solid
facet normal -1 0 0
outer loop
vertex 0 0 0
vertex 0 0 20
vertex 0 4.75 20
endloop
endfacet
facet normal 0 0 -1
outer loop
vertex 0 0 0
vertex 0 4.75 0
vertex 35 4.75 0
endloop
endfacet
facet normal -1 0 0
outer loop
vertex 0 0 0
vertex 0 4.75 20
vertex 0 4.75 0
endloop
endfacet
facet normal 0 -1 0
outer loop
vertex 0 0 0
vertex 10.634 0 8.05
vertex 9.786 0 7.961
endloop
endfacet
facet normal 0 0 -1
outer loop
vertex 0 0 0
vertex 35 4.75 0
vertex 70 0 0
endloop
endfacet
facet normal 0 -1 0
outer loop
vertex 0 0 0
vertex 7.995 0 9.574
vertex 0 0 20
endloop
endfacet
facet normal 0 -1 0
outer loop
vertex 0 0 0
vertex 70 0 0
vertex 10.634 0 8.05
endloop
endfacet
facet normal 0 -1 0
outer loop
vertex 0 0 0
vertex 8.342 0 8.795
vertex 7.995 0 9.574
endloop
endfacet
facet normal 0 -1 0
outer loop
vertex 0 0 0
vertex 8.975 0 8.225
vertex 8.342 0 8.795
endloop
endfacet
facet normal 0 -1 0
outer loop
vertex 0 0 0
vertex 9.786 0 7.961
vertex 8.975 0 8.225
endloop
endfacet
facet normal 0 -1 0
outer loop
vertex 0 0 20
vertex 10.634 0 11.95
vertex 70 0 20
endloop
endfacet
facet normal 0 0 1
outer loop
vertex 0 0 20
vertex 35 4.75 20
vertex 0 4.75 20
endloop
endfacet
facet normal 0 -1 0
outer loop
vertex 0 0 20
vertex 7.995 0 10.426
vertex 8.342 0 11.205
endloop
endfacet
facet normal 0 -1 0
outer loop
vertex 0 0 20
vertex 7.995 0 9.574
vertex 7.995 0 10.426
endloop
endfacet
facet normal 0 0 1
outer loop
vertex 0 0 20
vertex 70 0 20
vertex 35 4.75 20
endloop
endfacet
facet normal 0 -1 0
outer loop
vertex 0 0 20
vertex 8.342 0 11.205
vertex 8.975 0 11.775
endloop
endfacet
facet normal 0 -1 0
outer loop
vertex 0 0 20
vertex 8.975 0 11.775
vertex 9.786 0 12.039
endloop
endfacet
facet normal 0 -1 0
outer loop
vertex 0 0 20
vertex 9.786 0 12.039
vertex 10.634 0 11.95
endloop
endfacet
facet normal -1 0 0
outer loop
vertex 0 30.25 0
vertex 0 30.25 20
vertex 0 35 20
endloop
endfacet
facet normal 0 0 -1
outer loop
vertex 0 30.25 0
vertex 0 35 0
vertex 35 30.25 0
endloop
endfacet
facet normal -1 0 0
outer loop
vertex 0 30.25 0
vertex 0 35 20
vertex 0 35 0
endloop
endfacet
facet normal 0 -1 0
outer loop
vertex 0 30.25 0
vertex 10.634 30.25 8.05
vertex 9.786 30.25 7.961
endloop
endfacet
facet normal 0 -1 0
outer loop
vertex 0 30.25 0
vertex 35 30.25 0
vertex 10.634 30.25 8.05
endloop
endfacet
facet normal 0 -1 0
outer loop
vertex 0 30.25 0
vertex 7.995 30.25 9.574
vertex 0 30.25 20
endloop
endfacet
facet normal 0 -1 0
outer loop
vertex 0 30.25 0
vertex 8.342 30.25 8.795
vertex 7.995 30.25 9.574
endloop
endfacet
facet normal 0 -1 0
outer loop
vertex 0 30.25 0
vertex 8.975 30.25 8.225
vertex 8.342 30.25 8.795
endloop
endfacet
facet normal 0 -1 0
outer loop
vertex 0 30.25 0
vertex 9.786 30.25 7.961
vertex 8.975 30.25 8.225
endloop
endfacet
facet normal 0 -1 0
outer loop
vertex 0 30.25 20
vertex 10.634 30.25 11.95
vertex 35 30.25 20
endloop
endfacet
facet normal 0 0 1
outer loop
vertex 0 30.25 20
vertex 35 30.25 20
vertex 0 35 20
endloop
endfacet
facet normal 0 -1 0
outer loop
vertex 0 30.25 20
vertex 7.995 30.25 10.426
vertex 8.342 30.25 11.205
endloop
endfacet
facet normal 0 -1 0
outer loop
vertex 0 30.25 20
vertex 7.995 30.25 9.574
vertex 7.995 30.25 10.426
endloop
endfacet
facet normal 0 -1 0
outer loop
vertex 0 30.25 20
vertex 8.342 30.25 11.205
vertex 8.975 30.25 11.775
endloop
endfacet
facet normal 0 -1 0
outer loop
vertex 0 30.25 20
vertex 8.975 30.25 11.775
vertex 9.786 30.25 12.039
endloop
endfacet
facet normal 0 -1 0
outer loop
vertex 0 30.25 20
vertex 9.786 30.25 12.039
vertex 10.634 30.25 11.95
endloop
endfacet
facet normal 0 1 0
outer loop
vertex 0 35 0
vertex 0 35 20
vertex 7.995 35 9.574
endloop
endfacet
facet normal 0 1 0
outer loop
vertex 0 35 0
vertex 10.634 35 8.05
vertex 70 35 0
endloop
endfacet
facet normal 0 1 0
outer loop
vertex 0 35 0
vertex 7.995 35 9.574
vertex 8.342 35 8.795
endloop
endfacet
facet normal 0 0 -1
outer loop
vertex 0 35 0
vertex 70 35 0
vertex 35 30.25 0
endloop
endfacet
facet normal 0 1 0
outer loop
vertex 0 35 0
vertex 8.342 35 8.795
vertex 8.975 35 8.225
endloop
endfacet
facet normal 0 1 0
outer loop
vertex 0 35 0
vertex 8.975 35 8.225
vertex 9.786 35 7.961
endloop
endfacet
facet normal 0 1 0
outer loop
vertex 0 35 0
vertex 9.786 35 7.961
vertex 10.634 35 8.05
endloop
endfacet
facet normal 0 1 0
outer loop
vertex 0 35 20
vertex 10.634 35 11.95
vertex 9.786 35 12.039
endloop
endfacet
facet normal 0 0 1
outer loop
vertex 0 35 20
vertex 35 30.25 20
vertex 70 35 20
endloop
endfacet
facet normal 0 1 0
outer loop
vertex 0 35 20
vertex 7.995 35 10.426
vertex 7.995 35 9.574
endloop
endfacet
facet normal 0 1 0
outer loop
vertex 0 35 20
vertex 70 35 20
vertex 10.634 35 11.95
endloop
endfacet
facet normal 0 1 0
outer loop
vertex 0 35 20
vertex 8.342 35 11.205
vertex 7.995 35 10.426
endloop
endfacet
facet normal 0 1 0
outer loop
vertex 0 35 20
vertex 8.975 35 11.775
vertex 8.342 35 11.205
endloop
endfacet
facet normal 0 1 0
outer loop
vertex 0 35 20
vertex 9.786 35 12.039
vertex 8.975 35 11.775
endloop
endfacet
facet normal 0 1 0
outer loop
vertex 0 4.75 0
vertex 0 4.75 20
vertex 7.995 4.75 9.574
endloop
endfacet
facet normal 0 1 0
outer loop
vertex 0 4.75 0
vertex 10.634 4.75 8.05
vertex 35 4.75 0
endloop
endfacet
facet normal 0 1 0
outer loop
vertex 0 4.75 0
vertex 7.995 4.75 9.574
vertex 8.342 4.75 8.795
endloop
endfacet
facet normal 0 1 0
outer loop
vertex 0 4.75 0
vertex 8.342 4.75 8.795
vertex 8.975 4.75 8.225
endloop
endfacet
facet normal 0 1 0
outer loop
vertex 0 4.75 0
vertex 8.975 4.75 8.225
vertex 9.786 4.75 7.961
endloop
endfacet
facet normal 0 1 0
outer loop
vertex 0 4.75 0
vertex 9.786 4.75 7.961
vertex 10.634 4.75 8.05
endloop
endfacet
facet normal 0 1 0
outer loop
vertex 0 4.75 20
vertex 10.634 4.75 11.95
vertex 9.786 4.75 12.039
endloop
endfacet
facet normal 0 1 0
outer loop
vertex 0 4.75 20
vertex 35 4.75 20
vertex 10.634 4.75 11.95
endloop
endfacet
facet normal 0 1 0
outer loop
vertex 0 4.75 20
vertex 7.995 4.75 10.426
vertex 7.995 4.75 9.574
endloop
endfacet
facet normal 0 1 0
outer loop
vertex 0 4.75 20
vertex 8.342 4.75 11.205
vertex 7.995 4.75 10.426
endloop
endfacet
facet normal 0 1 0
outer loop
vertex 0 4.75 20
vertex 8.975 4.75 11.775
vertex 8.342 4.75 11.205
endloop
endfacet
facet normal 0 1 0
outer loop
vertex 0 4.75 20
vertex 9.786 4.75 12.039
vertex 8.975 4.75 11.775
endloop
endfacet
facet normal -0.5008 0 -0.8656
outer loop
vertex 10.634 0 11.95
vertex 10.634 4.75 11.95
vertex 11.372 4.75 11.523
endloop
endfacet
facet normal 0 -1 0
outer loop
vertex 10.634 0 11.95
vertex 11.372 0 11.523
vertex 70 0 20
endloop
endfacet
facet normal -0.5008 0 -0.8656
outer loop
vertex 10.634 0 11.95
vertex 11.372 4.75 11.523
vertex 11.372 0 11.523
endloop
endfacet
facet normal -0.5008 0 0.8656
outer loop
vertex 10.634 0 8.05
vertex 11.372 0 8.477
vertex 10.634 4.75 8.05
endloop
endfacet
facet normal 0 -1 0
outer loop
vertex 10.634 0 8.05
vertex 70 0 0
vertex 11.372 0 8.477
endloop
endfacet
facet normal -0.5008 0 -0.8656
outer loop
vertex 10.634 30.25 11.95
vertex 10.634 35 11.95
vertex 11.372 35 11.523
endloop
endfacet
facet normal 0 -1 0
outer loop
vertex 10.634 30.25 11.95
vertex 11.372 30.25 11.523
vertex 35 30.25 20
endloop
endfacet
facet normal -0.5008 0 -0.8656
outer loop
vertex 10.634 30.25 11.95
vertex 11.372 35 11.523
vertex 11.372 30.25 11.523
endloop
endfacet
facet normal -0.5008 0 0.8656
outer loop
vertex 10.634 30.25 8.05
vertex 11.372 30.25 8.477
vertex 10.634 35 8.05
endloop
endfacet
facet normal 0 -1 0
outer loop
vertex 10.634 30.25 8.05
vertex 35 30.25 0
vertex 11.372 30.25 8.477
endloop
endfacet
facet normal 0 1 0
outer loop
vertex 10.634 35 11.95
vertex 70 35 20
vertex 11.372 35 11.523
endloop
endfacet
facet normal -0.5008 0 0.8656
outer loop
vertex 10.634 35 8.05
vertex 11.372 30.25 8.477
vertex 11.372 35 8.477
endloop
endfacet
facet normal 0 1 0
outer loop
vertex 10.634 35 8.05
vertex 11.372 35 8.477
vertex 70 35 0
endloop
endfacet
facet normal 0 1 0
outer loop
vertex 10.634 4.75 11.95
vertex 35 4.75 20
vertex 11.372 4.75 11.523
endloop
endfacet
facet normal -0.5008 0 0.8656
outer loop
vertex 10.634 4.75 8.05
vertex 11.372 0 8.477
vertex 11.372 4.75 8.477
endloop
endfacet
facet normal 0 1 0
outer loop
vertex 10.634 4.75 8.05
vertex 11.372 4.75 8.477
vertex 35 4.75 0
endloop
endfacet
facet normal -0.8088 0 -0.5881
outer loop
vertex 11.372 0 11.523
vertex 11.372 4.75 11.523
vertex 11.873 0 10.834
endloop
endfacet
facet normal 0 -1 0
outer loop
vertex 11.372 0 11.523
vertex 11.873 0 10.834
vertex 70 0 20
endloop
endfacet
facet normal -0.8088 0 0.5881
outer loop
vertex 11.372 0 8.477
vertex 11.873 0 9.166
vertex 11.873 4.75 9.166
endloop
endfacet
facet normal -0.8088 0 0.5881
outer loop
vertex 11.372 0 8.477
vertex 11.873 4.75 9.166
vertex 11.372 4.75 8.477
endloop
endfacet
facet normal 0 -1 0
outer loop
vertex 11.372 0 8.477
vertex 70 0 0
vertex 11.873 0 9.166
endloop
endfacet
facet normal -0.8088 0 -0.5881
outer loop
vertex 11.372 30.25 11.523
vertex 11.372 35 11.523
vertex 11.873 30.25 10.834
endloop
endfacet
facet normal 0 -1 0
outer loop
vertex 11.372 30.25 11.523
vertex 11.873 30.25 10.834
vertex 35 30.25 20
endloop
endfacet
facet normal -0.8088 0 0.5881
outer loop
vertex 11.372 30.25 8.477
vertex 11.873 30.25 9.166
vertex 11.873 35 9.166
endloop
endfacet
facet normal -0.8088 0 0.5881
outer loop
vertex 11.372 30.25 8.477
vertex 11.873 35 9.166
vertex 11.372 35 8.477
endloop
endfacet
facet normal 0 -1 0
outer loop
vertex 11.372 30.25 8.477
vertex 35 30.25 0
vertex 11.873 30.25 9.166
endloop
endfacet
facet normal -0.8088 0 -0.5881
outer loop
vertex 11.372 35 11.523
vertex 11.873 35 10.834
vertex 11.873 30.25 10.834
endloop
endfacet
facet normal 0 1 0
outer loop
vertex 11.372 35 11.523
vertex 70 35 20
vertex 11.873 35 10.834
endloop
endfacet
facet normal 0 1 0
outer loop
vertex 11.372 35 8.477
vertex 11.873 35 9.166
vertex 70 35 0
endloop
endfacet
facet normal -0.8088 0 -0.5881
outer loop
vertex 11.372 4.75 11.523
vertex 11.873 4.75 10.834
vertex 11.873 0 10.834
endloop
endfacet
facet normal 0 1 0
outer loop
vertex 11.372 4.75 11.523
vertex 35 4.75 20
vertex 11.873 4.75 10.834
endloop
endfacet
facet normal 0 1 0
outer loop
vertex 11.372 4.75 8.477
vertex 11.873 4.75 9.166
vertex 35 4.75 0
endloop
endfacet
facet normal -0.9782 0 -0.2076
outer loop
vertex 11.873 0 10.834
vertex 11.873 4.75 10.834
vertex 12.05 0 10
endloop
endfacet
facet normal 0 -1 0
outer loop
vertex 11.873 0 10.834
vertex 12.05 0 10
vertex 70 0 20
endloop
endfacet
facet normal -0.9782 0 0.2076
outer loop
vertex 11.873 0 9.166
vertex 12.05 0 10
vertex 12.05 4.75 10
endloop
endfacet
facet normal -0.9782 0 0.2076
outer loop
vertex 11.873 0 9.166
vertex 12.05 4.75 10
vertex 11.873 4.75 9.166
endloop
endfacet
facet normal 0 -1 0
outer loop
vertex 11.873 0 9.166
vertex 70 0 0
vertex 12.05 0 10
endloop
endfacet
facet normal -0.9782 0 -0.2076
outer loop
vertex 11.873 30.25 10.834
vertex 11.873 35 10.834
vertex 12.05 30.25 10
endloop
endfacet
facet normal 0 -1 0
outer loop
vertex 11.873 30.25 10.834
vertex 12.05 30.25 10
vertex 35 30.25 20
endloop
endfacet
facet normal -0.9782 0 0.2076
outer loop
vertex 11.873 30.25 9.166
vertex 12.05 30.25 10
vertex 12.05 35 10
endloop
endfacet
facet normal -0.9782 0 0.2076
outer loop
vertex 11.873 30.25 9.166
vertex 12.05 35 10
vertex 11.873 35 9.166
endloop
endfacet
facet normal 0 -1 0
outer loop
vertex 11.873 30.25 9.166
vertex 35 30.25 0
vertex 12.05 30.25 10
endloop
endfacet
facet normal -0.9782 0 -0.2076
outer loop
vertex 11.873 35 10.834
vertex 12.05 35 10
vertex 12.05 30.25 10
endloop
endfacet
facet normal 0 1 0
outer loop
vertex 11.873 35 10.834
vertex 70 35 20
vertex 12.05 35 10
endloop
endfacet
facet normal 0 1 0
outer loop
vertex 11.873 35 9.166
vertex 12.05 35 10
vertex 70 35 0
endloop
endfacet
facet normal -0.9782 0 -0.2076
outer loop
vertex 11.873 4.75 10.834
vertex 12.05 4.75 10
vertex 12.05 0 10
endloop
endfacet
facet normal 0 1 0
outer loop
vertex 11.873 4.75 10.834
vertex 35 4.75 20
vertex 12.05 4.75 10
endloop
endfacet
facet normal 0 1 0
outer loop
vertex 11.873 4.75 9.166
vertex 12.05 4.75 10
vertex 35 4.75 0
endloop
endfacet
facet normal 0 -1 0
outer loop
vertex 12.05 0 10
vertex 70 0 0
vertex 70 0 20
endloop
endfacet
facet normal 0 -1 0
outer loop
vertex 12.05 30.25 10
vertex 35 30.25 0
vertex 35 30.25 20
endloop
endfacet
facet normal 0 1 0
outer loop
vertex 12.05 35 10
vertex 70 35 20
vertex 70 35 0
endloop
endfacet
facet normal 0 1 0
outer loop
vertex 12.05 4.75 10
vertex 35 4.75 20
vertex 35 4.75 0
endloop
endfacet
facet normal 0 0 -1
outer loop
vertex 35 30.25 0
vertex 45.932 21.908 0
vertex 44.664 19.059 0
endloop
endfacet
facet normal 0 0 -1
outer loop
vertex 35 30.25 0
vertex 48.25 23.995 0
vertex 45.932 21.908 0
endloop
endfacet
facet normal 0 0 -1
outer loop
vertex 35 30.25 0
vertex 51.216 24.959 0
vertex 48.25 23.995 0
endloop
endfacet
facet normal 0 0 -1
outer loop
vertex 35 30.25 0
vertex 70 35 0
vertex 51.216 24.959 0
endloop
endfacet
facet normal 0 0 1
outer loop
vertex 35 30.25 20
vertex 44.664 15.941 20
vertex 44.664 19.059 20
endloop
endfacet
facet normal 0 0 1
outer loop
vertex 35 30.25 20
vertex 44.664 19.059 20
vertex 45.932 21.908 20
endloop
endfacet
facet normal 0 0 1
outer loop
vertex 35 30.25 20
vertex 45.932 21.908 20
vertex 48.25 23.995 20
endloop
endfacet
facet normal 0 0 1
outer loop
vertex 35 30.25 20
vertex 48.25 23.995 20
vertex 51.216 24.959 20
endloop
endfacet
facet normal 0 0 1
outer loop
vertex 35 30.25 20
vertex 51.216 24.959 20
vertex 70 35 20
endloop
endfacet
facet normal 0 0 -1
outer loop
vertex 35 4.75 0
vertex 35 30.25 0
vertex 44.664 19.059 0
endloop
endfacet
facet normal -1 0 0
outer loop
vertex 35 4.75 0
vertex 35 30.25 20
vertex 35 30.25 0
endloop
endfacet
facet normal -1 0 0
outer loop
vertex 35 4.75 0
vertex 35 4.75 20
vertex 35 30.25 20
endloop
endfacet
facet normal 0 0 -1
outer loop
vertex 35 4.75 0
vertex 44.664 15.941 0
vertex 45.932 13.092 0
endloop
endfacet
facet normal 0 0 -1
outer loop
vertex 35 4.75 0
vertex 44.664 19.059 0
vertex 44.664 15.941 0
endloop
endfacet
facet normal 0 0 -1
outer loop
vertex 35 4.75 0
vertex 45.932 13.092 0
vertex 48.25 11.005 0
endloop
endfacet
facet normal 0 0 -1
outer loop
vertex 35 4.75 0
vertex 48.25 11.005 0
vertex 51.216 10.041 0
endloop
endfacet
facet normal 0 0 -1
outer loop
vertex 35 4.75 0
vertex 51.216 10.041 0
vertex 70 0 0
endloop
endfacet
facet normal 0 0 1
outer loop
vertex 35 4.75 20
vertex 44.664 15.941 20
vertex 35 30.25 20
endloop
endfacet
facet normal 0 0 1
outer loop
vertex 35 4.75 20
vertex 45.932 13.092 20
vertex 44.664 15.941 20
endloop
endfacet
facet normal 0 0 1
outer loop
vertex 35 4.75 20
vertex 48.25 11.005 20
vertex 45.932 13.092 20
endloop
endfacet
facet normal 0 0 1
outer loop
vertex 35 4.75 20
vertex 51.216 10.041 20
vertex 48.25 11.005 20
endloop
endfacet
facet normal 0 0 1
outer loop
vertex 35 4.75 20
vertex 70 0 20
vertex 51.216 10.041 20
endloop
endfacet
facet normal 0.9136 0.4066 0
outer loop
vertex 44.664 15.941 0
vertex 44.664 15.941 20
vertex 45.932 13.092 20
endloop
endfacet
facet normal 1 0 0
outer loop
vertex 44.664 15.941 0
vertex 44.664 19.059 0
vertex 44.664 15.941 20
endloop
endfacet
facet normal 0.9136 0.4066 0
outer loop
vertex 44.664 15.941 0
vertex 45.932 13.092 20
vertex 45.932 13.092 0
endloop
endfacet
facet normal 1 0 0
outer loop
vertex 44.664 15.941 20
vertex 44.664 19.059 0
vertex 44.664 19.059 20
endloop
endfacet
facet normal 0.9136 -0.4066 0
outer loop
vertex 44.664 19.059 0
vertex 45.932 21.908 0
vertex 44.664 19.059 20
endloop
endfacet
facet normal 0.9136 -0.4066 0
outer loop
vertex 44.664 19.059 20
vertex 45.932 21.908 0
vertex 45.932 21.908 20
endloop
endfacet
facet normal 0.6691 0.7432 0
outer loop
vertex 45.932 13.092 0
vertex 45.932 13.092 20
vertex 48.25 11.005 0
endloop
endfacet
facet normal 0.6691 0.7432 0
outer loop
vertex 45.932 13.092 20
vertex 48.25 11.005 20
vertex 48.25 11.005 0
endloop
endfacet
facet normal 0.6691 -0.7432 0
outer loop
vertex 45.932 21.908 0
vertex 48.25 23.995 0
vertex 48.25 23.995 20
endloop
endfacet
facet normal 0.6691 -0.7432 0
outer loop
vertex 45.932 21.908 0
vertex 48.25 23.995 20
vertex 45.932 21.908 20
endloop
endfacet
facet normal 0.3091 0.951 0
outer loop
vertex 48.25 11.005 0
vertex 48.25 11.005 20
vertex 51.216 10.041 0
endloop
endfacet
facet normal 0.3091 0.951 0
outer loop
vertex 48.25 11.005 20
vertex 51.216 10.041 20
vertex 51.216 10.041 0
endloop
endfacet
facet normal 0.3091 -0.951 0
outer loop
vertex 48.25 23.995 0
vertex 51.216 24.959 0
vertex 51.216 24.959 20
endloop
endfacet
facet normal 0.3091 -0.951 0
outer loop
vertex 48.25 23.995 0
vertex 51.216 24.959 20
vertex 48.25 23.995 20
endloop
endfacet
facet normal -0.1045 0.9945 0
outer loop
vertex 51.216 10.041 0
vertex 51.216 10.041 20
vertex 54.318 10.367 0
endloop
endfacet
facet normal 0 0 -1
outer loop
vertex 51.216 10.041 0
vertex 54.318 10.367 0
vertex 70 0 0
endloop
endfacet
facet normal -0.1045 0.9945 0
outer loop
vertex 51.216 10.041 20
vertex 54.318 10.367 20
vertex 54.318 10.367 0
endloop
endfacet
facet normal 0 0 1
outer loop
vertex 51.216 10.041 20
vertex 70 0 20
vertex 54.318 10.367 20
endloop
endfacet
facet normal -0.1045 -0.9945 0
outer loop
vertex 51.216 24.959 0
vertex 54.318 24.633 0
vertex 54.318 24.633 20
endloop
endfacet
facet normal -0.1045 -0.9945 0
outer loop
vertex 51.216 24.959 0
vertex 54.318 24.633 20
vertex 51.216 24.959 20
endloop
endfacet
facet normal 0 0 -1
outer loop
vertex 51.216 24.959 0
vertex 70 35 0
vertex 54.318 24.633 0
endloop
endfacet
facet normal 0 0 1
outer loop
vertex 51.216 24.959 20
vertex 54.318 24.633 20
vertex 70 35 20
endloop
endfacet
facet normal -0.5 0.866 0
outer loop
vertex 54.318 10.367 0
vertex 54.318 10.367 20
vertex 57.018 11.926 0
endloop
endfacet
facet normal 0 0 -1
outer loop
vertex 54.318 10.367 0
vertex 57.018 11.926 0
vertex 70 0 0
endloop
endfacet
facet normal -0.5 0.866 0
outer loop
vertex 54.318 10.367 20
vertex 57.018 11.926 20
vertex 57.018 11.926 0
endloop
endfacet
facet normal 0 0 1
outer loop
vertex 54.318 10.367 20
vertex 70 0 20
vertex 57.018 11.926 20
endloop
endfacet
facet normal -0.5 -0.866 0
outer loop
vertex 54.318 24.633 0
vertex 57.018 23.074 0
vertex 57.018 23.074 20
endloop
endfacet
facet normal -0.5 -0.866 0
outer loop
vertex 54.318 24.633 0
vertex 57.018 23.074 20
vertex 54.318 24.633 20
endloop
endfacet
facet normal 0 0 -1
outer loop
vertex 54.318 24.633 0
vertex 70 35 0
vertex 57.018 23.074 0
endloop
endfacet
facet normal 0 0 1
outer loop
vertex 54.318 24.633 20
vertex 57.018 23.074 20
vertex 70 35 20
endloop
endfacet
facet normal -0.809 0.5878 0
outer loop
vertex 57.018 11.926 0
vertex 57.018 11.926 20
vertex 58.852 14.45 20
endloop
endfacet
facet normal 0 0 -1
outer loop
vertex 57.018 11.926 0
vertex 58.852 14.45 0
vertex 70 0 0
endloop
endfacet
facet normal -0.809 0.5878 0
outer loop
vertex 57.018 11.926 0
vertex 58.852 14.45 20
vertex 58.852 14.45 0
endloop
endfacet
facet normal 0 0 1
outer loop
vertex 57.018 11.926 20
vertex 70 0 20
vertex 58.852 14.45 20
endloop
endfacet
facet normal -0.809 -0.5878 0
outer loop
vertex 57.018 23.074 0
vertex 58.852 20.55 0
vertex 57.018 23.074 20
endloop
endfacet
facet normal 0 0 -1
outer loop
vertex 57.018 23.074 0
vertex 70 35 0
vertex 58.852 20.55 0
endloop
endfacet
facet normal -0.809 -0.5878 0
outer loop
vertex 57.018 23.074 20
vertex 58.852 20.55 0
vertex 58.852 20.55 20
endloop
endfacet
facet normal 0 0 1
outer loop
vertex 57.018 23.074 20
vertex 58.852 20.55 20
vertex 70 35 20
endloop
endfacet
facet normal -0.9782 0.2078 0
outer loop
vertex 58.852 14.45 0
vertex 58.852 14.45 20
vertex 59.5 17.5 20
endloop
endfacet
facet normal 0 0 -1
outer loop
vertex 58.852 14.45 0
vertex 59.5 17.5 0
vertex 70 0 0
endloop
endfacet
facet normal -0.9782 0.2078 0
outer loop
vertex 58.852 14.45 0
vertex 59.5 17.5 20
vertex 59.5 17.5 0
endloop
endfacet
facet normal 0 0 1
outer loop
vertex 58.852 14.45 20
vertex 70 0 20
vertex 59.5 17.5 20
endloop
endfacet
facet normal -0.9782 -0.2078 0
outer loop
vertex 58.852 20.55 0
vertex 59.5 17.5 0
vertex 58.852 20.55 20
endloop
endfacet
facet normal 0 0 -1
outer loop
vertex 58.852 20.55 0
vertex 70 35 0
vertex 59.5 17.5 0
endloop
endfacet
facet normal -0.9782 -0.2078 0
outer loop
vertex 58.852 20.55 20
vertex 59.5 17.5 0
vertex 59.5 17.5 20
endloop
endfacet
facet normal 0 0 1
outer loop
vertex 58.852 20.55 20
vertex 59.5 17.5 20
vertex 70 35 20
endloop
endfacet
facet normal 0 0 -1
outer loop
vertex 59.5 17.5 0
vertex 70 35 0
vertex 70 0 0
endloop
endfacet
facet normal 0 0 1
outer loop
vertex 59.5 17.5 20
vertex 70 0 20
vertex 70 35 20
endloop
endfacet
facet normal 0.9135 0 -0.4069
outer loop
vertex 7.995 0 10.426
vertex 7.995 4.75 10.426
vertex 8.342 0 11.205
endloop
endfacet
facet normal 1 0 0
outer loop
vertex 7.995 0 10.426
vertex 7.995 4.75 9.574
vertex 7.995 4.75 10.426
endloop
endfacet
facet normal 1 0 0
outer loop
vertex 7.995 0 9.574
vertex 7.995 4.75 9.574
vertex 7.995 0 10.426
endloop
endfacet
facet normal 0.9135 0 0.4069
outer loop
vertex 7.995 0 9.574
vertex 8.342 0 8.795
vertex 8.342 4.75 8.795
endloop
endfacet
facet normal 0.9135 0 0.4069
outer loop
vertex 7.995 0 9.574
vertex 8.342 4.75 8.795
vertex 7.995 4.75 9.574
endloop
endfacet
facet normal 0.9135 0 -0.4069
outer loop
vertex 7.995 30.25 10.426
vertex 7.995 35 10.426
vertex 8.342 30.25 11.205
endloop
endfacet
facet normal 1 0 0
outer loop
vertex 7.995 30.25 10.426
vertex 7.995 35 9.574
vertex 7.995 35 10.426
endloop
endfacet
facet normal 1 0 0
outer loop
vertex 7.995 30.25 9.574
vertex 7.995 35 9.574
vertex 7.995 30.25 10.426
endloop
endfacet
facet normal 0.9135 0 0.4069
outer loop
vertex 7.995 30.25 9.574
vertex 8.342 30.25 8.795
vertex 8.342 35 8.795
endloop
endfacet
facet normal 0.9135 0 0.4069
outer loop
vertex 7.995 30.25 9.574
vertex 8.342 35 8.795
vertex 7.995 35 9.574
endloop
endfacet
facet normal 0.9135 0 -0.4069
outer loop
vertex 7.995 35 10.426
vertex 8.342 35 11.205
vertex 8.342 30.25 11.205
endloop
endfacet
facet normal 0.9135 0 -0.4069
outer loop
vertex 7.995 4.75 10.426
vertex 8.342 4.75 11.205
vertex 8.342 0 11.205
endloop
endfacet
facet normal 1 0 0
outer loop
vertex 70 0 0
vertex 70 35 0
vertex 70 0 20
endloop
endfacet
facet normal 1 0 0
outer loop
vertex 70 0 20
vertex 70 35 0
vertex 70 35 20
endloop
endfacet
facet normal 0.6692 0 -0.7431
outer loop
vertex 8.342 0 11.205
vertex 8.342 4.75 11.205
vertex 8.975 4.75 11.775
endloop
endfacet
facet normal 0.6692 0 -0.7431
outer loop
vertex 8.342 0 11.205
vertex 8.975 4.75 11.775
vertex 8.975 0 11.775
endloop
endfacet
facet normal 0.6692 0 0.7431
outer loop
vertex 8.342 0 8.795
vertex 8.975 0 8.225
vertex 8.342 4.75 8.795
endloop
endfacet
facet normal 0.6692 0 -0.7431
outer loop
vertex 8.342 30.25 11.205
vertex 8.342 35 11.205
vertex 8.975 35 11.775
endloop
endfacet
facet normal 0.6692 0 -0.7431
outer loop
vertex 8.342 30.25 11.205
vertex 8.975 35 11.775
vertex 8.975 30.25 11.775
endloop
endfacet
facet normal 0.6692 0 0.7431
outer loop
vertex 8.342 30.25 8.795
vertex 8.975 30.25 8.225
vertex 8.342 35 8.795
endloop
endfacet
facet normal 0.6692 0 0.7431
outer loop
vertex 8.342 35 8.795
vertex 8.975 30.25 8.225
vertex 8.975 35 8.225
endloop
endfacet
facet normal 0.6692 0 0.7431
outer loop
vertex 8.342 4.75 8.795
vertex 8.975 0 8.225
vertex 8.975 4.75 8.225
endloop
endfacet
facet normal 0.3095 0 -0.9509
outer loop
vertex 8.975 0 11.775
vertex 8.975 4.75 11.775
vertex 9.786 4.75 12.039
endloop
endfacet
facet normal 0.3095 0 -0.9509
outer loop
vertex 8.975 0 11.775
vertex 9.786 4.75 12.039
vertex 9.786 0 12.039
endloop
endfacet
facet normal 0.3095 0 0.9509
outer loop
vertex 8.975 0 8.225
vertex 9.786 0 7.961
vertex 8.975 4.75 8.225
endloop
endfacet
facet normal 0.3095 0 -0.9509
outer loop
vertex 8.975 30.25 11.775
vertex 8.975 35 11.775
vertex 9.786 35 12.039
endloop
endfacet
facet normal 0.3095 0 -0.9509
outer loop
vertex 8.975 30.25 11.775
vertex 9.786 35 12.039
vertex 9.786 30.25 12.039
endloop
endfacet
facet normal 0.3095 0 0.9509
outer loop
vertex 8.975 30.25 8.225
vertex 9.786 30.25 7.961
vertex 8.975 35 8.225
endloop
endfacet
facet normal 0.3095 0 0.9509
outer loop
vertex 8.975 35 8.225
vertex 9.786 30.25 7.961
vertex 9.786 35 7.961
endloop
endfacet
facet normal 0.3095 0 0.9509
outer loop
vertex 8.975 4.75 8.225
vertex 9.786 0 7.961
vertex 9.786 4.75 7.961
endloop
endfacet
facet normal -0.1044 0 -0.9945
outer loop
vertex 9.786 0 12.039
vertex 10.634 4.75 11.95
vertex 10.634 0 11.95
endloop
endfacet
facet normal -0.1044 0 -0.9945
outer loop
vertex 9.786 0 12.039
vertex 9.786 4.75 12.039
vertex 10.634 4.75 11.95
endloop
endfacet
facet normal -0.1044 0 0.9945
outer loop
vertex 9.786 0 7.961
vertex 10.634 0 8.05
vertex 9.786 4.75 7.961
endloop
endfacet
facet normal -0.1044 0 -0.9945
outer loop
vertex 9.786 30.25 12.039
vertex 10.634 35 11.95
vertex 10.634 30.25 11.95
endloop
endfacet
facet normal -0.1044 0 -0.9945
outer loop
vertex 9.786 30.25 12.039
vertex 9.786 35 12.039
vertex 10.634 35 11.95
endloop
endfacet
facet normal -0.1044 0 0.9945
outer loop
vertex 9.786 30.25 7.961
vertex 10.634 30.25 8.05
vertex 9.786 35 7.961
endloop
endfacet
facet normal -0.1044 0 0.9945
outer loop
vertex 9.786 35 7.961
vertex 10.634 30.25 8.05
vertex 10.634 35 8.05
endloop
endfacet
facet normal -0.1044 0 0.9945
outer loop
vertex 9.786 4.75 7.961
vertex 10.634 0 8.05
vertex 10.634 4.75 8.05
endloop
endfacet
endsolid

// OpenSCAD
module 666_1232(){

thickness = 20; 
	difference(){
        cube([70,35,thickness]);
        // díra pro domek
        translate([0,5 - 0.25, -1])
            cube([35,25.5,thickness + 2]);


        // díry pro čep
		translate([10,38,thickness/2])
            rotate([90,0,0])
                cylinder (h = 40, r = 4.1/2, $fn = 15);

        translate([52,35/2,0])
            cylinder (h = 40, d = 15, $fn = 15);
	}
}
666_1232();
